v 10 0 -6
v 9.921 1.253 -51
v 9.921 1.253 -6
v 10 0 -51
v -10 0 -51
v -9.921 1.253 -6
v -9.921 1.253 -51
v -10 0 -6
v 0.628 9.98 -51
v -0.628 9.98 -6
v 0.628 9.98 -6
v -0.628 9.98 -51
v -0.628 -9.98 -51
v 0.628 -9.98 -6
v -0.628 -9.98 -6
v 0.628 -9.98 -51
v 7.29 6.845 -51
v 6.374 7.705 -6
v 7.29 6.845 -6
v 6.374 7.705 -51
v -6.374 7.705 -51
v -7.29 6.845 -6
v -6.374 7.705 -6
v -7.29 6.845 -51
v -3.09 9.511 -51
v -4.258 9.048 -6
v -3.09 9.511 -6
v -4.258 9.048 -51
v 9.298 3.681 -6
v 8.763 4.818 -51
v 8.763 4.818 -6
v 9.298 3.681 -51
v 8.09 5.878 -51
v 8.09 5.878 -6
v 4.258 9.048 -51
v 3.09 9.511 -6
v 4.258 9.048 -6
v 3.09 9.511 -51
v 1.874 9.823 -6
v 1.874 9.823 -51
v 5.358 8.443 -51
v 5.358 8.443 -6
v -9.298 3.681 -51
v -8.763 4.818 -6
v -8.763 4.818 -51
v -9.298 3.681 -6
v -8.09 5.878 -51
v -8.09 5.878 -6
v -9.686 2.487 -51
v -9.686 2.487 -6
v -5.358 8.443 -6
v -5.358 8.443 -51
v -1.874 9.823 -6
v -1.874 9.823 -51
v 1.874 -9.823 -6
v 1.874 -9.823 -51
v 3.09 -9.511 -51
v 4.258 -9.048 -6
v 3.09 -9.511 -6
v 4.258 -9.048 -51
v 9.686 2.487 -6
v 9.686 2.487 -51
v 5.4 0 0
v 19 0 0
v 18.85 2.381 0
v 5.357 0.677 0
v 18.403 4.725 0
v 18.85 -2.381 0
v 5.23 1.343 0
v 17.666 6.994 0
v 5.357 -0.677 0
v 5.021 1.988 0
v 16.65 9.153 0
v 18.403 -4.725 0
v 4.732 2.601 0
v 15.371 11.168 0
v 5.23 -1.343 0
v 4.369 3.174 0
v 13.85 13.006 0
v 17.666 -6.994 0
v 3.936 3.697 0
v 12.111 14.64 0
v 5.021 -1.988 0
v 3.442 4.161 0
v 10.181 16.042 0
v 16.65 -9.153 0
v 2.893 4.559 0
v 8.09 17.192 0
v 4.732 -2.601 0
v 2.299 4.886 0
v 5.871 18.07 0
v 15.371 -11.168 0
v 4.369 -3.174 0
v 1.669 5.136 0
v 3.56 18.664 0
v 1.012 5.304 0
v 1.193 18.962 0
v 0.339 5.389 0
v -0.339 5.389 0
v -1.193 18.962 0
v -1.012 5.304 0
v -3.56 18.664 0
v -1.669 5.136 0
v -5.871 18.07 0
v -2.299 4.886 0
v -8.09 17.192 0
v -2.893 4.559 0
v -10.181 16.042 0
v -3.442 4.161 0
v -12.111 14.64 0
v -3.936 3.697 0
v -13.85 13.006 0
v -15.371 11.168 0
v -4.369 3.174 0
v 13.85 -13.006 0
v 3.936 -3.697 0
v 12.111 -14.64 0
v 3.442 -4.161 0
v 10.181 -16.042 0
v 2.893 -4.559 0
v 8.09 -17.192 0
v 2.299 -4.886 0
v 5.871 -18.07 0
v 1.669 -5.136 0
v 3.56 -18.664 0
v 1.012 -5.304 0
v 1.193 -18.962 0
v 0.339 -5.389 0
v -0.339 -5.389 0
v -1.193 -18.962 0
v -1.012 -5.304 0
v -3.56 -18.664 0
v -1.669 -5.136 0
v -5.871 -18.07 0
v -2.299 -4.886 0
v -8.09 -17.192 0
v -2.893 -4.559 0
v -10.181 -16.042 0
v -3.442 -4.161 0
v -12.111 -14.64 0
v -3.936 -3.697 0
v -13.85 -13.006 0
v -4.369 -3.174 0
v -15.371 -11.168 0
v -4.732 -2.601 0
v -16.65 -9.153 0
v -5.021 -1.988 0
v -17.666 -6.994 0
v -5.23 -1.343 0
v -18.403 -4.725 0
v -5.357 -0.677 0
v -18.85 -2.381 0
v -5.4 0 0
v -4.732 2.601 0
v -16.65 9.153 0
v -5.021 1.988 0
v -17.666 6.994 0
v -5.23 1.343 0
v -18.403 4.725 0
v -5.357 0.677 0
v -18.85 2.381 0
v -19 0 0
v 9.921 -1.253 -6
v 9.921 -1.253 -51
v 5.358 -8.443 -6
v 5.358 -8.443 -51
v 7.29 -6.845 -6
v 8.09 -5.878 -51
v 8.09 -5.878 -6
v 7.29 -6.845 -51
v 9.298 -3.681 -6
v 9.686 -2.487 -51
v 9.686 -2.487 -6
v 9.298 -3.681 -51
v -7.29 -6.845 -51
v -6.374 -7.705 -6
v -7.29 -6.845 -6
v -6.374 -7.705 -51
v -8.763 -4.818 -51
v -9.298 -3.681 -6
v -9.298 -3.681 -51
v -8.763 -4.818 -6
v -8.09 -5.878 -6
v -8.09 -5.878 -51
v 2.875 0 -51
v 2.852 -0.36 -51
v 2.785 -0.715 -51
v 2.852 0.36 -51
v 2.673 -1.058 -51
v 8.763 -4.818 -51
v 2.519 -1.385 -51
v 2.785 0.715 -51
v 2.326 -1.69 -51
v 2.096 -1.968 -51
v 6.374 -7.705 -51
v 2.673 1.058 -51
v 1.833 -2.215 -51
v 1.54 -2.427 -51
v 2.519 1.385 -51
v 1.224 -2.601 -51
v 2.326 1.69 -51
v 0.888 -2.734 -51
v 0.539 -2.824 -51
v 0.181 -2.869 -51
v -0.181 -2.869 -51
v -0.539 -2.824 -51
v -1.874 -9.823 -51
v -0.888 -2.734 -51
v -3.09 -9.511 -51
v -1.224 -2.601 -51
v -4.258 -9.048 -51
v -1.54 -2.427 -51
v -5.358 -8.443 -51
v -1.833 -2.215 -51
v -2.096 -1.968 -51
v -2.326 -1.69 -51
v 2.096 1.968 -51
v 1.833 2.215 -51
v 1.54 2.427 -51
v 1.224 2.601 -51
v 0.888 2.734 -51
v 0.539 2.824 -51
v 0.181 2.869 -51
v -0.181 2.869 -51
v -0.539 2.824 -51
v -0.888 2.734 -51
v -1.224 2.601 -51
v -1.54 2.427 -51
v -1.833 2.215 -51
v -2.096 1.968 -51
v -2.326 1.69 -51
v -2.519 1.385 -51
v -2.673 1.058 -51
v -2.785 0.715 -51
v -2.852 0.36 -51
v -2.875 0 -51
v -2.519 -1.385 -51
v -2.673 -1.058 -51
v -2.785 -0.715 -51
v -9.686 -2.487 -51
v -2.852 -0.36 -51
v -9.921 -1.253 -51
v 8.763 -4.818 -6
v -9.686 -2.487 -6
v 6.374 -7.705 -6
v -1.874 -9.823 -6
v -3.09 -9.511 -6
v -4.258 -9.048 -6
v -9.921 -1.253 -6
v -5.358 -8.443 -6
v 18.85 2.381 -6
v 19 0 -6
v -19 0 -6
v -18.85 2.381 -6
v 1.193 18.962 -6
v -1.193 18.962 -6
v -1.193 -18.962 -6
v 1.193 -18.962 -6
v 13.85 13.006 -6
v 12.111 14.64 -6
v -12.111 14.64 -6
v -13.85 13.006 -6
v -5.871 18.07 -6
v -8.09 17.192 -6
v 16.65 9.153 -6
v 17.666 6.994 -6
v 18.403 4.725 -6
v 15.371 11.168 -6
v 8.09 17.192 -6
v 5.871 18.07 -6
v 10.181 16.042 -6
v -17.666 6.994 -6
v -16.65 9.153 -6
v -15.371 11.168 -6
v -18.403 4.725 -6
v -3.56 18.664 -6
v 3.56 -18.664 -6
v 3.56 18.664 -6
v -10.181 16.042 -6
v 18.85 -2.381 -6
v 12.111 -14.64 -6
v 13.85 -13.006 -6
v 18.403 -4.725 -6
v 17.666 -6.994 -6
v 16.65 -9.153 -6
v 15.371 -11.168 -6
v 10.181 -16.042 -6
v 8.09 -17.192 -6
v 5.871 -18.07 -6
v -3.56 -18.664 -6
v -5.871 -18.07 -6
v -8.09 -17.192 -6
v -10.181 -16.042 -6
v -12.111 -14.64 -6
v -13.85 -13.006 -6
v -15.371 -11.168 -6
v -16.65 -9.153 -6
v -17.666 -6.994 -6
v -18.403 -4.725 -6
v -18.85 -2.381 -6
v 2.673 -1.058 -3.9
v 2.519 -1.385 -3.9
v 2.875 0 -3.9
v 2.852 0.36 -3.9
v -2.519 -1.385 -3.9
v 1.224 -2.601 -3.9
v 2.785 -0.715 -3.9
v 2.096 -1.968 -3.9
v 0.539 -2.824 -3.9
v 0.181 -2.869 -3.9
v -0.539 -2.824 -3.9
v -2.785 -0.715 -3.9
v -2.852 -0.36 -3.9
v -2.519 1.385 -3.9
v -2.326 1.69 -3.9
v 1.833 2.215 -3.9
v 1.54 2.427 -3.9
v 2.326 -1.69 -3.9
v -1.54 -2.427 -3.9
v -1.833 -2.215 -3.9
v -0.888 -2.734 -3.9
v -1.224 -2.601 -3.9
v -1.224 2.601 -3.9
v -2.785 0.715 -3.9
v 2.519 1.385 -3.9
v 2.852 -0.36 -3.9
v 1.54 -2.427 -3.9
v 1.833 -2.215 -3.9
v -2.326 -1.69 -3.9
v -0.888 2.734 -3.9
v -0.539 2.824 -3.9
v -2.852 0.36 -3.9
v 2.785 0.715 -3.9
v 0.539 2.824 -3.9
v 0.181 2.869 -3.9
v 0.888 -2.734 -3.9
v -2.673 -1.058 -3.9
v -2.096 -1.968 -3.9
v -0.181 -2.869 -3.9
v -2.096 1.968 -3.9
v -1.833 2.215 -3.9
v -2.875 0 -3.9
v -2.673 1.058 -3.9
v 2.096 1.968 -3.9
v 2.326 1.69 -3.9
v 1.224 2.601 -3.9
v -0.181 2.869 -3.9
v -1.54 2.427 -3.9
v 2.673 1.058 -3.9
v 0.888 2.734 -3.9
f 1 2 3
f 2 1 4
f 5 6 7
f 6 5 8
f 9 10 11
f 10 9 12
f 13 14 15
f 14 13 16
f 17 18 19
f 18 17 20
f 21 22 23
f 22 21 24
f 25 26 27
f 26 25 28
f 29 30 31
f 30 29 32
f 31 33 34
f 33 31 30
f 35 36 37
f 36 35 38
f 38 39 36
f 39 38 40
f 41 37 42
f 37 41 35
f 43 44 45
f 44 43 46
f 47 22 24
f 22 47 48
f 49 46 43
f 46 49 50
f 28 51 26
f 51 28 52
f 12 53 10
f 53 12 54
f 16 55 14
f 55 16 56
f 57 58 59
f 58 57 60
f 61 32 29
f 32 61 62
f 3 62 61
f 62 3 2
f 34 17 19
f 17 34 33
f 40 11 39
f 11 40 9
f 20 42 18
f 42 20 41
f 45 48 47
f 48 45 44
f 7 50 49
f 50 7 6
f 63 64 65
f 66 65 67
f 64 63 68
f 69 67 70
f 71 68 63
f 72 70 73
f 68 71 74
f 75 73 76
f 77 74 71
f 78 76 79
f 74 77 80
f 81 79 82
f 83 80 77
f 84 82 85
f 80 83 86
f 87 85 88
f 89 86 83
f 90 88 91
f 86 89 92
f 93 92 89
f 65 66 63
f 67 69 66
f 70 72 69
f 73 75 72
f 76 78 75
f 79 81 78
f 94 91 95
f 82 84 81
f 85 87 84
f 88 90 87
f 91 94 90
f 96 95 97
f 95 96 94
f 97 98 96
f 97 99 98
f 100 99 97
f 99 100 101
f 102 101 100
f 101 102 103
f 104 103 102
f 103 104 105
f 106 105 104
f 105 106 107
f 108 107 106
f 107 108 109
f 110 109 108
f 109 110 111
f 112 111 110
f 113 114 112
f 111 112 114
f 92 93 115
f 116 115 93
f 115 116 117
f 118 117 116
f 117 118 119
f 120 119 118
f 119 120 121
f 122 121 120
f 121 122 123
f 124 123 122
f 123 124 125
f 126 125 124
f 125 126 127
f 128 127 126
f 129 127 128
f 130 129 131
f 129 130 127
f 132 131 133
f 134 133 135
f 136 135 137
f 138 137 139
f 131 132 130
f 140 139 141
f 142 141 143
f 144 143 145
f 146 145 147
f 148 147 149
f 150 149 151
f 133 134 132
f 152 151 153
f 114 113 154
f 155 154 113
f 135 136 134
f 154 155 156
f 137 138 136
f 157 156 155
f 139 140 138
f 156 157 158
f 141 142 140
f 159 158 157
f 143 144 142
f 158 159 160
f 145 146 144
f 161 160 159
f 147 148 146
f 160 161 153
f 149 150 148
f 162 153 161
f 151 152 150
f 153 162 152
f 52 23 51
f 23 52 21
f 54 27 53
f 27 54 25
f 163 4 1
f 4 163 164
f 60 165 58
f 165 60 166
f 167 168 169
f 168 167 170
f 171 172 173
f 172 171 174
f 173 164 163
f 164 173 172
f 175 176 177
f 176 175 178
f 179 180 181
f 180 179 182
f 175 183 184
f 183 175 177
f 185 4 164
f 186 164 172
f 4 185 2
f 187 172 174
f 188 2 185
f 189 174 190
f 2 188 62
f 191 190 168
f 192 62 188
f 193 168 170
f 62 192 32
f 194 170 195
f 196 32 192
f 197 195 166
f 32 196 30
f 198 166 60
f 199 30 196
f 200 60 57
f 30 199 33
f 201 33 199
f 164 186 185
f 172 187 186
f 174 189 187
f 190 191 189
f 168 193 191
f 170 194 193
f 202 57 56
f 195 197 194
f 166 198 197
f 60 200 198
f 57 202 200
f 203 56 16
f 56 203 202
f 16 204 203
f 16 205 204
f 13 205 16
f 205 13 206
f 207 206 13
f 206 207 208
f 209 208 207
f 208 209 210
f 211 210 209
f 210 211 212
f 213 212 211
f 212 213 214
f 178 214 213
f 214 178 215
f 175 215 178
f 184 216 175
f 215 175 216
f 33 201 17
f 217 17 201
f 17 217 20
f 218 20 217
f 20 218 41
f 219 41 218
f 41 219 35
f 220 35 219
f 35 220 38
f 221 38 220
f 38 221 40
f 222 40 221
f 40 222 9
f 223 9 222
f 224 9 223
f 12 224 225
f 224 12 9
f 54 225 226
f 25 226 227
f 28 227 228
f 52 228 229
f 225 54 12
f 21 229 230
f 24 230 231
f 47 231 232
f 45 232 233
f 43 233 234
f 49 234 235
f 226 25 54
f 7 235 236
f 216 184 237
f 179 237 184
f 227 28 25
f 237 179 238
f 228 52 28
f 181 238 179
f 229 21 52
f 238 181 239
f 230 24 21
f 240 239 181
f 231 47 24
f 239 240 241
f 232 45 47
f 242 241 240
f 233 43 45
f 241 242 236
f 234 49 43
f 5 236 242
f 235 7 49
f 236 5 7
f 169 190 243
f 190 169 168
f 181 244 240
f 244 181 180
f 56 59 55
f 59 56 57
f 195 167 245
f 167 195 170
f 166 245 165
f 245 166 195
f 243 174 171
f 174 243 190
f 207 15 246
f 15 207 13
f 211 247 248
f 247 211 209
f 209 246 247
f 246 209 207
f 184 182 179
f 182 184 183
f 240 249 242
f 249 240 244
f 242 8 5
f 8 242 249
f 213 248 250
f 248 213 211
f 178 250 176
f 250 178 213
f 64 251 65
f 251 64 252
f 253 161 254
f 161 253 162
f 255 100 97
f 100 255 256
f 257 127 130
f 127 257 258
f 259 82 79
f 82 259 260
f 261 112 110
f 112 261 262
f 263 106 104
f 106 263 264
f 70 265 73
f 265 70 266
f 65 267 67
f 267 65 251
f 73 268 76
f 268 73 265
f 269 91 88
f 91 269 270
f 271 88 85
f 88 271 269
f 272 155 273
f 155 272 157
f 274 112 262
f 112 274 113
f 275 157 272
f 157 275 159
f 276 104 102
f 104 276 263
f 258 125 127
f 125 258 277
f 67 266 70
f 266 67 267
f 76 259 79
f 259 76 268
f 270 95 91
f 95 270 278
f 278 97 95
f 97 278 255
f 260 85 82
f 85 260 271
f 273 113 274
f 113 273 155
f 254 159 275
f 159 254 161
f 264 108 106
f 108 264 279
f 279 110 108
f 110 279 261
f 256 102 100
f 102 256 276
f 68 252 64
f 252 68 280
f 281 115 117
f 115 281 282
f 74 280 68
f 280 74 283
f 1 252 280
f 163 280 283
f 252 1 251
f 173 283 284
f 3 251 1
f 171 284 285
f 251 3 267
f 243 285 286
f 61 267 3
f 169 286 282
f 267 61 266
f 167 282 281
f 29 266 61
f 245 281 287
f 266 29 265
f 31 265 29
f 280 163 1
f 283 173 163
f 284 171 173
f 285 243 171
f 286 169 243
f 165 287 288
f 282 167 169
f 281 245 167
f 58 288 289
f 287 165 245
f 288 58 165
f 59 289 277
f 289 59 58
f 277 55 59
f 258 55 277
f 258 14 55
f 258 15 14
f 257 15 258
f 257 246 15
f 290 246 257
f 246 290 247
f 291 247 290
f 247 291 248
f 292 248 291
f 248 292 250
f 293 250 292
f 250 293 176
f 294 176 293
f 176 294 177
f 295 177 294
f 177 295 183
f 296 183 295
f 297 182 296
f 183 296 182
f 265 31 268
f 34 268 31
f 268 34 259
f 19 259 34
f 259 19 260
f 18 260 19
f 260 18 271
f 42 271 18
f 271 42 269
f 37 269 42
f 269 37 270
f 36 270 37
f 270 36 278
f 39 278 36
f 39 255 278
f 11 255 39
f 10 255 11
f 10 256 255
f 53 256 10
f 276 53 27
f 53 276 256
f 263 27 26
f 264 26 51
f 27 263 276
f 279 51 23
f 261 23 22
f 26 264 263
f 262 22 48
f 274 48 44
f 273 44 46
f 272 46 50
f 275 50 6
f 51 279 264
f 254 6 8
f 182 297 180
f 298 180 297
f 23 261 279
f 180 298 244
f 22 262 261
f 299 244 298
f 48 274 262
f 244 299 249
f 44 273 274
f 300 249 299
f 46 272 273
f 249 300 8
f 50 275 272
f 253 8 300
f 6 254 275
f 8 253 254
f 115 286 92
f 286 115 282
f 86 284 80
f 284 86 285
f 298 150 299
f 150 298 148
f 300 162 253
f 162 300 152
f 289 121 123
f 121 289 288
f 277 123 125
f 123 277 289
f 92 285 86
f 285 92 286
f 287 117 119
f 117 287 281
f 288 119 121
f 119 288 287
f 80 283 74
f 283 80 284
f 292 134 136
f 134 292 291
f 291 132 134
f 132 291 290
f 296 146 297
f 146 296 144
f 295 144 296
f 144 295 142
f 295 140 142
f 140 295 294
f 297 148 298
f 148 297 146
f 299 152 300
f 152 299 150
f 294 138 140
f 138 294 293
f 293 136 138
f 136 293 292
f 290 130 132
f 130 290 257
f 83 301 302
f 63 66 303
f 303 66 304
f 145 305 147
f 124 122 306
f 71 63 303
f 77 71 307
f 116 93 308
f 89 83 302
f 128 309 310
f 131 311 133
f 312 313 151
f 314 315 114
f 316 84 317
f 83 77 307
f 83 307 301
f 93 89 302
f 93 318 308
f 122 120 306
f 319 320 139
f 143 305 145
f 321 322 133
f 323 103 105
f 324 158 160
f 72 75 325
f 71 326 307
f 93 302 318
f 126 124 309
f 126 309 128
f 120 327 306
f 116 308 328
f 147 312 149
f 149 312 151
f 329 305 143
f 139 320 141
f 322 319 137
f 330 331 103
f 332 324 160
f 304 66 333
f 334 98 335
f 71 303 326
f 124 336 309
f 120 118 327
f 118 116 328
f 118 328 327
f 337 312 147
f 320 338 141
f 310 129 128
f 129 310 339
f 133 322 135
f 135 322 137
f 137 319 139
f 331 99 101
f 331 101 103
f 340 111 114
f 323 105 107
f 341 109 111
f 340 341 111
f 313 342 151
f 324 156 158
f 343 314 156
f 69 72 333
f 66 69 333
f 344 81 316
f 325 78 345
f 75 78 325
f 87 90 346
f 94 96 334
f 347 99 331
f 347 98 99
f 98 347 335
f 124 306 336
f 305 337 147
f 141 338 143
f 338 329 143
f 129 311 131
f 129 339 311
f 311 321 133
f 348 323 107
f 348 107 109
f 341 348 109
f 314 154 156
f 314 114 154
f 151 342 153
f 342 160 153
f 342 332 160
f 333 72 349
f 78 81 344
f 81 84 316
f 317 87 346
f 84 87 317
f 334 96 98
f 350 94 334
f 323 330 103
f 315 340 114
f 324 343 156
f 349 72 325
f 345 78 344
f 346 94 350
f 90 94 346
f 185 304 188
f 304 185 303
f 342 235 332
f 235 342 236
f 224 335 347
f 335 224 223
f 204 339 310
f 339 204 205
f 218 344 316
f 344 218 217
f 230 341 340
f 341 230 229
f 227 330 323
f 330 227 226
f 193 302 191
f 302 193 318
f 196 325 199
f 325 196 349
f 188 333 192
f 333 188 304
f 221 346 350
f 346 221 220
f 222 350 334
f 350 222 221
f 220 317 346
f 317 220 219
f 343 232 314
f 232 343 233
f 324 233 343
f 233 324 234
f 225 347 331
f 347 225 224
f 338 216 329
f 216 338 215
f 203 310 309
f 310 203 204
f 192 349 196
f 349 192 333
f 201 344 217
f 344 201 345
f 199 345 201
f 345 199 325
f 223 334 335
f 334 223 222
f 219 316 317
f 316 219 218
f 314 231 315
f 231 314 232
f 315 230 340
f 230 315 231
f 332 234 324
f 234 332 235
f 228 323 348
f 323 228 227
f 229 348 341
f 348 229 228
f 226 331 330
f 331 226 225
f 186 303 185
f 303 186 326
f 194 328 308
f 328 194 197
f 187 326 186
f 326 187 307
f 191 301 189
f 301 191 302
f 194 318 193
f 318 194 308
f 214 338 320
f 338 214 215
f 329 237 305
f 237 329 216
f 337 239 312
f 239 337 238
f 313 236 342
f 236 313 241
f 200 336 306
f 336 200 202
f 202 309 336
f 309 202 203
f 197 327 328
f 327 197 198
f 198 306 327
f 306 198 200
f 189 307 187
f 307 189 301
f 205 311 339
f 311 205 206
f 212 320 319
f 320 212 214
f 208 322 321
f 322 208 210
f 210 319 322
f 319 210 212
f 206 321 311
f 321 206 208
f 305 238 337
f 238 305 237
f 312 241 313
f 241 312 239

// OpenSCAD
$fn = 50;


difference() {
	union() {
		translate(v = [0, 0, -51.0000000000]) {
			cylinder(h = 51, r = 10.0000000000);
		}
		translate(v = [0, 0, -6.0000000000]) {
			cylinder(h = 6, r = 19.0000000000);
		}
	}
	union() {
		translate(v = [0, 0, 0]) {
			rotate(a = [0, 0, 0]) {
				difference() {
					union() {
						#translate(v = [0, 0, -51.0000000000]) {
							cylinder(h = 51, r = 2.6000000000);
						}
						#translate(v = [0, 0, -3.9000000000]) {
							cylinder(h = 3.9000000000, r = 10.0000000000, r1 = 2.8750000000, r2 = 5.4000000000);
						}
						#translate(v = [0, 0, -51.0000000000]) {
							cylinder(h = 51, r = 2.8750000000);
						}
						#translate(v = [0, 0, -51.0000000000]) {
							cylinder(h = 51, r = 2.6000000000);
						}
					}
					union();
				}
			}
		}
	}
}
